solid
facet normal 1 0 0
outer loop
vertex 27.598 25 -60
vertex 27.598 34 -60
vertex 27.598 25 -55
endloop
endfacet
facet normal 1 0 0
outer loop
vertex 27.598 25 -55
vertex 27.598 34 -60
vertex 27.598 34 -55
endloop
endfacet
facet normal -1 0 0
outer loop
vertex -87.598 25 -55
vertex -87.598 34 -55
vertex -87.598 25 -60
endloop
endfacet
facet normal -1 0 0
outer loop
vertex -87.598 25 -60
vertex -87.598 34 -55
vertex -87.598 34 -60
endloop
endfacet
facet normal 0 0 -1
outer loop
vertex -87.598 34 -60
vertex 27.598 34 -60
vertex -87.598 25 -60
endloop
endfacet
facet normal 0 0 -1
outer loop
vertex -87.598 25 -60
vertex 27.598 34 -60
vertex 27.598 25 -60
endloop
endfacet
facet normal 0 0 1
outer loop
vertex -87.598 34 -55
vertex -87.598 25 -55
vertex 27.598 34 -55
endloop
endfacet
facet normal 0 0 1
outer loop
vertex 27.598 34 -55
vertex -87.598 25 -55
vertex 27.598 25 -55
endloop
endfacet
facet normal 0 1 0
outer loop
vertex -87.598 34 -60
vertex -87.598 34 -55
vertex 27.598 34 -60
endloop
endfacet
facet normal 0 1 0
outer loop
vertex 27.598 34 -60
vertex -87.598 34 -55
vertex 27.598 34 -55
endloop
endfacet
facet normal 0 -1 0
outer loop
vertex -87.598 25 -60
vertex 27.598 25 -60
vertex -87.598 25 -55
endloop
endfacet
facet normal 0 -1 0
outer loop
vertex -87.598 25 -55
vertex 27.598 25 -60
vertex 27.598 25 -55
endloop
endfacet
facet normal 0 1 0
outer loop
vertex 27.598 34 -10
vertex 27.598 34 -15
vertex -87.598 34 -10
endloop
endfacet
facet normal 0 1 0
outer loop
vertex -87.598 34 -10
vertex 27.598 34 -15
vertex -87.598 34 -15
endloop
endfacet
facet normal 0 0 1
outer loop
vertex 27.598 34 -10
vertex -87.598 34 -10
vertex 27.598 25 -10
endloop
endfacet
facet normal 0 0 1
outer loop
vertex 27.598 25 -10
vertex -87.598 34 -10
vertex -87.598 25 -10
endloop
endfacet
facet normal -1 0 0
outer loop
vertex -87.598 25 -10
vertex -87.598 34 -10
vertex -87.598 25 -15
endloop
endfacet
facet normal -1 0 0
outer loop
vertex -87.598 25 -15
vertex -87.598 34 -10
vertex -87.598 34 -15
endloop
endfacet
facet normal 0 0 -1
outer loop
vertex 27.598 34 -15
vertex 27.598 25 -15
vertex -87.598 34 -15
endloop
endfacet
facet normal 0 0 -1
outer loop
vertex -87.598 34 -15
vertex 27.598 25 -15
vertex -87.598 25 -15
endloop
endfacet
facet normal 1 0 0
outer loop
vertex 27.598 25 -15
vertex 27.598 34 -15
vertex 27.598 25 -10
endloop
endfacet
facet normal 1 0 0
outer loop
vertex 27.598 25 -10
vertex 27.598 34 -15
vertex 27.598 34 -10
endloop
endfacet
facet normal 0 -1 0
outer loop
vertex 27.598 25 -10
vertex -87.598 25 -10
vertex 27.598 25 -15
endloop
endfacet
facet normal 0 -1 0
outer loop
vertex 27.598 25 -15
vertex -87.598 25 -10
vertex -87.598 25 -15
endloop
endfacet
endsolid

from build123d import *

# Parameters (mm, degrees)
SKETCH1_W           = 55.195911414
SKETCH1_H           = 50
BOSS_EXTRUDE1_DEPTH = 70
SKETCH2_W           = 55.195911414
SKETCH2_H           = 15
BOSS_EXTRUDE2_DEPTH = 10
BOSS_EXTRUDE3_DEPTH = 60
SKETCH4_W           = 20
SKETCH4_H           = 9.75
BOSS_EXTRUDE4_DEPTH = 25
SKETCH5_W           = 10
SKETCH5_H           = 20
BOSS_EXTRUDE5_DEPTH = 10
SKETCH6_W           = 70
SKETCH6_H           = 1
CUT_EXTRUDE1_DEPTH  = 161.561183283
SKETCH7_W           = 10
SKETCH7_H           = 59
CUT_EXTRUDE2_DEPTH  = 161.346167953
SKETCH8_W           = 146.025432046
SKETCH8_H           = 53.713621204
CUT_EXTRUDE3_DEPTH  = 50


with BuildPart() as part:
    # Sketch1 → Boss-Extrude1 (new body)
    with BuildSketch(Plane.XY):
        Rectangle(SKETCH1_W, SKETCH1_H)
    extrude(amount=-BOSS_EXTRUDE1_DEPTH)

    # Sketch2 → Boss-Extrude2 (add)
    with BuildSketch(Plane(origin=(0, 25, 0), x_dir=(1, 0, 0), z_dir=(0, 1, 0))):
        with Locations((0, 7.5)):
            Rectangle(SKETCH2_W, SKETCH2_H)
        with Locations((0, 62.5)):
            Rectangle(SKETCH2_W, SKETCH2_H)
    extrude(amount=BOSS_EXTRUDE2_DEPTH)

    # Sketch3 → Boss-Extrude3 (add)
    with BuildSketch(Plane.ZY.offset(27.597955707)):
        Polygon((0, -25), (0, 35), (-15, 35), (-15, 25), (-55, 25), (-55, 35), (-70, 35), (-70, -25), align=None)
    extrude(amount=BOSS_EXTRUDE3_DEPTH)

    # Sketch4 → Boss-Extrude4 (add)
    with BuildSketch(Plane.ZY.offset(87.597955707)):
        with Locations((-35, -20.125)):
            Rectangle(SKETCH4_W, SKETCH4_H)
    extrude(amount=BOSS_EXTRUDE4_DEPTH)

    # Sketch5 → Boss-Extrude5 (add)
    with BuildSketch(Plane(origin=(0, -15.25, 0), x_dir=(1, 0, 0), z_dir=(0, 1, 0))):
        with Locations((-107.597955707, 35)):
            Rectangle(SKETCH5_W, SKETCH5_H)
    extrude(amount=BOSS_EXTRUDE5_DEPTH)

    # Sketch6 → Cut-Extrude1 (cut, through all)
    with BuildSketch(Plane(origin=(27.597955707, 0, 0), x_dir=(0, 0, -1), z_dir=(1, 0, 0))):
        with Locations((35, 34.5)):
            Rectangle(SKETCH6_W, SKETCH6_H)
    extrude(amount=-CUT_EXTRUDE1_DEPTH, mode=Mode.SUBTRACT)

    # Sketch7 → Cut-Extrude2 (cut, through all)
    with BuildSketch(Plane(origin=(27.597955707, 0, 0), x_dir=(0, 0, -1), z_dir=(1, 0, 0))):
        with Locations((5, 4.5)):
            Rectangle(SKETCH7_W, SKETCH7_H)
        with Locations((65, 4.5)):
            Rectangle(SKETCH7_W, SKETCH7_H)
    extrude(amount=-CUT_EXTRUDE2_DEPTH, mode=Mode.SUBTRACT)

    # Sketch8 → Cut-Extrude3 (cut)
    with BuildSketch(Plane.XZ.offset(25)):
        with Locations((-45.414760316, -33.143189398)):
            Rectangle(SKETCH8_W, SKETCH8_H)
    extrude(amount=-CUT_EXTRUDE3_DEPTH, mode=Mode.SUBTRACT)


with BuildPart() as cut_extrude3_piece_1:
    # of the separate pieces the step leaves, piece 1, a body of its own (cut_extrude3_pieces)
    add(part.part.solids().sort_by_distance((27.597955707, 25, -55))[0])


with BuildPart() as cut_extrude3_piece_2:
    # of the separate pieces the step leaves, piece 2, a body of its own (cut_extrude3_pieces)
    add(part.part.solids().sort_by_distance((27.597955707, 25, -15))[0])


solid = Compound([cut_extrude3_piece_1.part, cut_extrude3_piece_2.part])
